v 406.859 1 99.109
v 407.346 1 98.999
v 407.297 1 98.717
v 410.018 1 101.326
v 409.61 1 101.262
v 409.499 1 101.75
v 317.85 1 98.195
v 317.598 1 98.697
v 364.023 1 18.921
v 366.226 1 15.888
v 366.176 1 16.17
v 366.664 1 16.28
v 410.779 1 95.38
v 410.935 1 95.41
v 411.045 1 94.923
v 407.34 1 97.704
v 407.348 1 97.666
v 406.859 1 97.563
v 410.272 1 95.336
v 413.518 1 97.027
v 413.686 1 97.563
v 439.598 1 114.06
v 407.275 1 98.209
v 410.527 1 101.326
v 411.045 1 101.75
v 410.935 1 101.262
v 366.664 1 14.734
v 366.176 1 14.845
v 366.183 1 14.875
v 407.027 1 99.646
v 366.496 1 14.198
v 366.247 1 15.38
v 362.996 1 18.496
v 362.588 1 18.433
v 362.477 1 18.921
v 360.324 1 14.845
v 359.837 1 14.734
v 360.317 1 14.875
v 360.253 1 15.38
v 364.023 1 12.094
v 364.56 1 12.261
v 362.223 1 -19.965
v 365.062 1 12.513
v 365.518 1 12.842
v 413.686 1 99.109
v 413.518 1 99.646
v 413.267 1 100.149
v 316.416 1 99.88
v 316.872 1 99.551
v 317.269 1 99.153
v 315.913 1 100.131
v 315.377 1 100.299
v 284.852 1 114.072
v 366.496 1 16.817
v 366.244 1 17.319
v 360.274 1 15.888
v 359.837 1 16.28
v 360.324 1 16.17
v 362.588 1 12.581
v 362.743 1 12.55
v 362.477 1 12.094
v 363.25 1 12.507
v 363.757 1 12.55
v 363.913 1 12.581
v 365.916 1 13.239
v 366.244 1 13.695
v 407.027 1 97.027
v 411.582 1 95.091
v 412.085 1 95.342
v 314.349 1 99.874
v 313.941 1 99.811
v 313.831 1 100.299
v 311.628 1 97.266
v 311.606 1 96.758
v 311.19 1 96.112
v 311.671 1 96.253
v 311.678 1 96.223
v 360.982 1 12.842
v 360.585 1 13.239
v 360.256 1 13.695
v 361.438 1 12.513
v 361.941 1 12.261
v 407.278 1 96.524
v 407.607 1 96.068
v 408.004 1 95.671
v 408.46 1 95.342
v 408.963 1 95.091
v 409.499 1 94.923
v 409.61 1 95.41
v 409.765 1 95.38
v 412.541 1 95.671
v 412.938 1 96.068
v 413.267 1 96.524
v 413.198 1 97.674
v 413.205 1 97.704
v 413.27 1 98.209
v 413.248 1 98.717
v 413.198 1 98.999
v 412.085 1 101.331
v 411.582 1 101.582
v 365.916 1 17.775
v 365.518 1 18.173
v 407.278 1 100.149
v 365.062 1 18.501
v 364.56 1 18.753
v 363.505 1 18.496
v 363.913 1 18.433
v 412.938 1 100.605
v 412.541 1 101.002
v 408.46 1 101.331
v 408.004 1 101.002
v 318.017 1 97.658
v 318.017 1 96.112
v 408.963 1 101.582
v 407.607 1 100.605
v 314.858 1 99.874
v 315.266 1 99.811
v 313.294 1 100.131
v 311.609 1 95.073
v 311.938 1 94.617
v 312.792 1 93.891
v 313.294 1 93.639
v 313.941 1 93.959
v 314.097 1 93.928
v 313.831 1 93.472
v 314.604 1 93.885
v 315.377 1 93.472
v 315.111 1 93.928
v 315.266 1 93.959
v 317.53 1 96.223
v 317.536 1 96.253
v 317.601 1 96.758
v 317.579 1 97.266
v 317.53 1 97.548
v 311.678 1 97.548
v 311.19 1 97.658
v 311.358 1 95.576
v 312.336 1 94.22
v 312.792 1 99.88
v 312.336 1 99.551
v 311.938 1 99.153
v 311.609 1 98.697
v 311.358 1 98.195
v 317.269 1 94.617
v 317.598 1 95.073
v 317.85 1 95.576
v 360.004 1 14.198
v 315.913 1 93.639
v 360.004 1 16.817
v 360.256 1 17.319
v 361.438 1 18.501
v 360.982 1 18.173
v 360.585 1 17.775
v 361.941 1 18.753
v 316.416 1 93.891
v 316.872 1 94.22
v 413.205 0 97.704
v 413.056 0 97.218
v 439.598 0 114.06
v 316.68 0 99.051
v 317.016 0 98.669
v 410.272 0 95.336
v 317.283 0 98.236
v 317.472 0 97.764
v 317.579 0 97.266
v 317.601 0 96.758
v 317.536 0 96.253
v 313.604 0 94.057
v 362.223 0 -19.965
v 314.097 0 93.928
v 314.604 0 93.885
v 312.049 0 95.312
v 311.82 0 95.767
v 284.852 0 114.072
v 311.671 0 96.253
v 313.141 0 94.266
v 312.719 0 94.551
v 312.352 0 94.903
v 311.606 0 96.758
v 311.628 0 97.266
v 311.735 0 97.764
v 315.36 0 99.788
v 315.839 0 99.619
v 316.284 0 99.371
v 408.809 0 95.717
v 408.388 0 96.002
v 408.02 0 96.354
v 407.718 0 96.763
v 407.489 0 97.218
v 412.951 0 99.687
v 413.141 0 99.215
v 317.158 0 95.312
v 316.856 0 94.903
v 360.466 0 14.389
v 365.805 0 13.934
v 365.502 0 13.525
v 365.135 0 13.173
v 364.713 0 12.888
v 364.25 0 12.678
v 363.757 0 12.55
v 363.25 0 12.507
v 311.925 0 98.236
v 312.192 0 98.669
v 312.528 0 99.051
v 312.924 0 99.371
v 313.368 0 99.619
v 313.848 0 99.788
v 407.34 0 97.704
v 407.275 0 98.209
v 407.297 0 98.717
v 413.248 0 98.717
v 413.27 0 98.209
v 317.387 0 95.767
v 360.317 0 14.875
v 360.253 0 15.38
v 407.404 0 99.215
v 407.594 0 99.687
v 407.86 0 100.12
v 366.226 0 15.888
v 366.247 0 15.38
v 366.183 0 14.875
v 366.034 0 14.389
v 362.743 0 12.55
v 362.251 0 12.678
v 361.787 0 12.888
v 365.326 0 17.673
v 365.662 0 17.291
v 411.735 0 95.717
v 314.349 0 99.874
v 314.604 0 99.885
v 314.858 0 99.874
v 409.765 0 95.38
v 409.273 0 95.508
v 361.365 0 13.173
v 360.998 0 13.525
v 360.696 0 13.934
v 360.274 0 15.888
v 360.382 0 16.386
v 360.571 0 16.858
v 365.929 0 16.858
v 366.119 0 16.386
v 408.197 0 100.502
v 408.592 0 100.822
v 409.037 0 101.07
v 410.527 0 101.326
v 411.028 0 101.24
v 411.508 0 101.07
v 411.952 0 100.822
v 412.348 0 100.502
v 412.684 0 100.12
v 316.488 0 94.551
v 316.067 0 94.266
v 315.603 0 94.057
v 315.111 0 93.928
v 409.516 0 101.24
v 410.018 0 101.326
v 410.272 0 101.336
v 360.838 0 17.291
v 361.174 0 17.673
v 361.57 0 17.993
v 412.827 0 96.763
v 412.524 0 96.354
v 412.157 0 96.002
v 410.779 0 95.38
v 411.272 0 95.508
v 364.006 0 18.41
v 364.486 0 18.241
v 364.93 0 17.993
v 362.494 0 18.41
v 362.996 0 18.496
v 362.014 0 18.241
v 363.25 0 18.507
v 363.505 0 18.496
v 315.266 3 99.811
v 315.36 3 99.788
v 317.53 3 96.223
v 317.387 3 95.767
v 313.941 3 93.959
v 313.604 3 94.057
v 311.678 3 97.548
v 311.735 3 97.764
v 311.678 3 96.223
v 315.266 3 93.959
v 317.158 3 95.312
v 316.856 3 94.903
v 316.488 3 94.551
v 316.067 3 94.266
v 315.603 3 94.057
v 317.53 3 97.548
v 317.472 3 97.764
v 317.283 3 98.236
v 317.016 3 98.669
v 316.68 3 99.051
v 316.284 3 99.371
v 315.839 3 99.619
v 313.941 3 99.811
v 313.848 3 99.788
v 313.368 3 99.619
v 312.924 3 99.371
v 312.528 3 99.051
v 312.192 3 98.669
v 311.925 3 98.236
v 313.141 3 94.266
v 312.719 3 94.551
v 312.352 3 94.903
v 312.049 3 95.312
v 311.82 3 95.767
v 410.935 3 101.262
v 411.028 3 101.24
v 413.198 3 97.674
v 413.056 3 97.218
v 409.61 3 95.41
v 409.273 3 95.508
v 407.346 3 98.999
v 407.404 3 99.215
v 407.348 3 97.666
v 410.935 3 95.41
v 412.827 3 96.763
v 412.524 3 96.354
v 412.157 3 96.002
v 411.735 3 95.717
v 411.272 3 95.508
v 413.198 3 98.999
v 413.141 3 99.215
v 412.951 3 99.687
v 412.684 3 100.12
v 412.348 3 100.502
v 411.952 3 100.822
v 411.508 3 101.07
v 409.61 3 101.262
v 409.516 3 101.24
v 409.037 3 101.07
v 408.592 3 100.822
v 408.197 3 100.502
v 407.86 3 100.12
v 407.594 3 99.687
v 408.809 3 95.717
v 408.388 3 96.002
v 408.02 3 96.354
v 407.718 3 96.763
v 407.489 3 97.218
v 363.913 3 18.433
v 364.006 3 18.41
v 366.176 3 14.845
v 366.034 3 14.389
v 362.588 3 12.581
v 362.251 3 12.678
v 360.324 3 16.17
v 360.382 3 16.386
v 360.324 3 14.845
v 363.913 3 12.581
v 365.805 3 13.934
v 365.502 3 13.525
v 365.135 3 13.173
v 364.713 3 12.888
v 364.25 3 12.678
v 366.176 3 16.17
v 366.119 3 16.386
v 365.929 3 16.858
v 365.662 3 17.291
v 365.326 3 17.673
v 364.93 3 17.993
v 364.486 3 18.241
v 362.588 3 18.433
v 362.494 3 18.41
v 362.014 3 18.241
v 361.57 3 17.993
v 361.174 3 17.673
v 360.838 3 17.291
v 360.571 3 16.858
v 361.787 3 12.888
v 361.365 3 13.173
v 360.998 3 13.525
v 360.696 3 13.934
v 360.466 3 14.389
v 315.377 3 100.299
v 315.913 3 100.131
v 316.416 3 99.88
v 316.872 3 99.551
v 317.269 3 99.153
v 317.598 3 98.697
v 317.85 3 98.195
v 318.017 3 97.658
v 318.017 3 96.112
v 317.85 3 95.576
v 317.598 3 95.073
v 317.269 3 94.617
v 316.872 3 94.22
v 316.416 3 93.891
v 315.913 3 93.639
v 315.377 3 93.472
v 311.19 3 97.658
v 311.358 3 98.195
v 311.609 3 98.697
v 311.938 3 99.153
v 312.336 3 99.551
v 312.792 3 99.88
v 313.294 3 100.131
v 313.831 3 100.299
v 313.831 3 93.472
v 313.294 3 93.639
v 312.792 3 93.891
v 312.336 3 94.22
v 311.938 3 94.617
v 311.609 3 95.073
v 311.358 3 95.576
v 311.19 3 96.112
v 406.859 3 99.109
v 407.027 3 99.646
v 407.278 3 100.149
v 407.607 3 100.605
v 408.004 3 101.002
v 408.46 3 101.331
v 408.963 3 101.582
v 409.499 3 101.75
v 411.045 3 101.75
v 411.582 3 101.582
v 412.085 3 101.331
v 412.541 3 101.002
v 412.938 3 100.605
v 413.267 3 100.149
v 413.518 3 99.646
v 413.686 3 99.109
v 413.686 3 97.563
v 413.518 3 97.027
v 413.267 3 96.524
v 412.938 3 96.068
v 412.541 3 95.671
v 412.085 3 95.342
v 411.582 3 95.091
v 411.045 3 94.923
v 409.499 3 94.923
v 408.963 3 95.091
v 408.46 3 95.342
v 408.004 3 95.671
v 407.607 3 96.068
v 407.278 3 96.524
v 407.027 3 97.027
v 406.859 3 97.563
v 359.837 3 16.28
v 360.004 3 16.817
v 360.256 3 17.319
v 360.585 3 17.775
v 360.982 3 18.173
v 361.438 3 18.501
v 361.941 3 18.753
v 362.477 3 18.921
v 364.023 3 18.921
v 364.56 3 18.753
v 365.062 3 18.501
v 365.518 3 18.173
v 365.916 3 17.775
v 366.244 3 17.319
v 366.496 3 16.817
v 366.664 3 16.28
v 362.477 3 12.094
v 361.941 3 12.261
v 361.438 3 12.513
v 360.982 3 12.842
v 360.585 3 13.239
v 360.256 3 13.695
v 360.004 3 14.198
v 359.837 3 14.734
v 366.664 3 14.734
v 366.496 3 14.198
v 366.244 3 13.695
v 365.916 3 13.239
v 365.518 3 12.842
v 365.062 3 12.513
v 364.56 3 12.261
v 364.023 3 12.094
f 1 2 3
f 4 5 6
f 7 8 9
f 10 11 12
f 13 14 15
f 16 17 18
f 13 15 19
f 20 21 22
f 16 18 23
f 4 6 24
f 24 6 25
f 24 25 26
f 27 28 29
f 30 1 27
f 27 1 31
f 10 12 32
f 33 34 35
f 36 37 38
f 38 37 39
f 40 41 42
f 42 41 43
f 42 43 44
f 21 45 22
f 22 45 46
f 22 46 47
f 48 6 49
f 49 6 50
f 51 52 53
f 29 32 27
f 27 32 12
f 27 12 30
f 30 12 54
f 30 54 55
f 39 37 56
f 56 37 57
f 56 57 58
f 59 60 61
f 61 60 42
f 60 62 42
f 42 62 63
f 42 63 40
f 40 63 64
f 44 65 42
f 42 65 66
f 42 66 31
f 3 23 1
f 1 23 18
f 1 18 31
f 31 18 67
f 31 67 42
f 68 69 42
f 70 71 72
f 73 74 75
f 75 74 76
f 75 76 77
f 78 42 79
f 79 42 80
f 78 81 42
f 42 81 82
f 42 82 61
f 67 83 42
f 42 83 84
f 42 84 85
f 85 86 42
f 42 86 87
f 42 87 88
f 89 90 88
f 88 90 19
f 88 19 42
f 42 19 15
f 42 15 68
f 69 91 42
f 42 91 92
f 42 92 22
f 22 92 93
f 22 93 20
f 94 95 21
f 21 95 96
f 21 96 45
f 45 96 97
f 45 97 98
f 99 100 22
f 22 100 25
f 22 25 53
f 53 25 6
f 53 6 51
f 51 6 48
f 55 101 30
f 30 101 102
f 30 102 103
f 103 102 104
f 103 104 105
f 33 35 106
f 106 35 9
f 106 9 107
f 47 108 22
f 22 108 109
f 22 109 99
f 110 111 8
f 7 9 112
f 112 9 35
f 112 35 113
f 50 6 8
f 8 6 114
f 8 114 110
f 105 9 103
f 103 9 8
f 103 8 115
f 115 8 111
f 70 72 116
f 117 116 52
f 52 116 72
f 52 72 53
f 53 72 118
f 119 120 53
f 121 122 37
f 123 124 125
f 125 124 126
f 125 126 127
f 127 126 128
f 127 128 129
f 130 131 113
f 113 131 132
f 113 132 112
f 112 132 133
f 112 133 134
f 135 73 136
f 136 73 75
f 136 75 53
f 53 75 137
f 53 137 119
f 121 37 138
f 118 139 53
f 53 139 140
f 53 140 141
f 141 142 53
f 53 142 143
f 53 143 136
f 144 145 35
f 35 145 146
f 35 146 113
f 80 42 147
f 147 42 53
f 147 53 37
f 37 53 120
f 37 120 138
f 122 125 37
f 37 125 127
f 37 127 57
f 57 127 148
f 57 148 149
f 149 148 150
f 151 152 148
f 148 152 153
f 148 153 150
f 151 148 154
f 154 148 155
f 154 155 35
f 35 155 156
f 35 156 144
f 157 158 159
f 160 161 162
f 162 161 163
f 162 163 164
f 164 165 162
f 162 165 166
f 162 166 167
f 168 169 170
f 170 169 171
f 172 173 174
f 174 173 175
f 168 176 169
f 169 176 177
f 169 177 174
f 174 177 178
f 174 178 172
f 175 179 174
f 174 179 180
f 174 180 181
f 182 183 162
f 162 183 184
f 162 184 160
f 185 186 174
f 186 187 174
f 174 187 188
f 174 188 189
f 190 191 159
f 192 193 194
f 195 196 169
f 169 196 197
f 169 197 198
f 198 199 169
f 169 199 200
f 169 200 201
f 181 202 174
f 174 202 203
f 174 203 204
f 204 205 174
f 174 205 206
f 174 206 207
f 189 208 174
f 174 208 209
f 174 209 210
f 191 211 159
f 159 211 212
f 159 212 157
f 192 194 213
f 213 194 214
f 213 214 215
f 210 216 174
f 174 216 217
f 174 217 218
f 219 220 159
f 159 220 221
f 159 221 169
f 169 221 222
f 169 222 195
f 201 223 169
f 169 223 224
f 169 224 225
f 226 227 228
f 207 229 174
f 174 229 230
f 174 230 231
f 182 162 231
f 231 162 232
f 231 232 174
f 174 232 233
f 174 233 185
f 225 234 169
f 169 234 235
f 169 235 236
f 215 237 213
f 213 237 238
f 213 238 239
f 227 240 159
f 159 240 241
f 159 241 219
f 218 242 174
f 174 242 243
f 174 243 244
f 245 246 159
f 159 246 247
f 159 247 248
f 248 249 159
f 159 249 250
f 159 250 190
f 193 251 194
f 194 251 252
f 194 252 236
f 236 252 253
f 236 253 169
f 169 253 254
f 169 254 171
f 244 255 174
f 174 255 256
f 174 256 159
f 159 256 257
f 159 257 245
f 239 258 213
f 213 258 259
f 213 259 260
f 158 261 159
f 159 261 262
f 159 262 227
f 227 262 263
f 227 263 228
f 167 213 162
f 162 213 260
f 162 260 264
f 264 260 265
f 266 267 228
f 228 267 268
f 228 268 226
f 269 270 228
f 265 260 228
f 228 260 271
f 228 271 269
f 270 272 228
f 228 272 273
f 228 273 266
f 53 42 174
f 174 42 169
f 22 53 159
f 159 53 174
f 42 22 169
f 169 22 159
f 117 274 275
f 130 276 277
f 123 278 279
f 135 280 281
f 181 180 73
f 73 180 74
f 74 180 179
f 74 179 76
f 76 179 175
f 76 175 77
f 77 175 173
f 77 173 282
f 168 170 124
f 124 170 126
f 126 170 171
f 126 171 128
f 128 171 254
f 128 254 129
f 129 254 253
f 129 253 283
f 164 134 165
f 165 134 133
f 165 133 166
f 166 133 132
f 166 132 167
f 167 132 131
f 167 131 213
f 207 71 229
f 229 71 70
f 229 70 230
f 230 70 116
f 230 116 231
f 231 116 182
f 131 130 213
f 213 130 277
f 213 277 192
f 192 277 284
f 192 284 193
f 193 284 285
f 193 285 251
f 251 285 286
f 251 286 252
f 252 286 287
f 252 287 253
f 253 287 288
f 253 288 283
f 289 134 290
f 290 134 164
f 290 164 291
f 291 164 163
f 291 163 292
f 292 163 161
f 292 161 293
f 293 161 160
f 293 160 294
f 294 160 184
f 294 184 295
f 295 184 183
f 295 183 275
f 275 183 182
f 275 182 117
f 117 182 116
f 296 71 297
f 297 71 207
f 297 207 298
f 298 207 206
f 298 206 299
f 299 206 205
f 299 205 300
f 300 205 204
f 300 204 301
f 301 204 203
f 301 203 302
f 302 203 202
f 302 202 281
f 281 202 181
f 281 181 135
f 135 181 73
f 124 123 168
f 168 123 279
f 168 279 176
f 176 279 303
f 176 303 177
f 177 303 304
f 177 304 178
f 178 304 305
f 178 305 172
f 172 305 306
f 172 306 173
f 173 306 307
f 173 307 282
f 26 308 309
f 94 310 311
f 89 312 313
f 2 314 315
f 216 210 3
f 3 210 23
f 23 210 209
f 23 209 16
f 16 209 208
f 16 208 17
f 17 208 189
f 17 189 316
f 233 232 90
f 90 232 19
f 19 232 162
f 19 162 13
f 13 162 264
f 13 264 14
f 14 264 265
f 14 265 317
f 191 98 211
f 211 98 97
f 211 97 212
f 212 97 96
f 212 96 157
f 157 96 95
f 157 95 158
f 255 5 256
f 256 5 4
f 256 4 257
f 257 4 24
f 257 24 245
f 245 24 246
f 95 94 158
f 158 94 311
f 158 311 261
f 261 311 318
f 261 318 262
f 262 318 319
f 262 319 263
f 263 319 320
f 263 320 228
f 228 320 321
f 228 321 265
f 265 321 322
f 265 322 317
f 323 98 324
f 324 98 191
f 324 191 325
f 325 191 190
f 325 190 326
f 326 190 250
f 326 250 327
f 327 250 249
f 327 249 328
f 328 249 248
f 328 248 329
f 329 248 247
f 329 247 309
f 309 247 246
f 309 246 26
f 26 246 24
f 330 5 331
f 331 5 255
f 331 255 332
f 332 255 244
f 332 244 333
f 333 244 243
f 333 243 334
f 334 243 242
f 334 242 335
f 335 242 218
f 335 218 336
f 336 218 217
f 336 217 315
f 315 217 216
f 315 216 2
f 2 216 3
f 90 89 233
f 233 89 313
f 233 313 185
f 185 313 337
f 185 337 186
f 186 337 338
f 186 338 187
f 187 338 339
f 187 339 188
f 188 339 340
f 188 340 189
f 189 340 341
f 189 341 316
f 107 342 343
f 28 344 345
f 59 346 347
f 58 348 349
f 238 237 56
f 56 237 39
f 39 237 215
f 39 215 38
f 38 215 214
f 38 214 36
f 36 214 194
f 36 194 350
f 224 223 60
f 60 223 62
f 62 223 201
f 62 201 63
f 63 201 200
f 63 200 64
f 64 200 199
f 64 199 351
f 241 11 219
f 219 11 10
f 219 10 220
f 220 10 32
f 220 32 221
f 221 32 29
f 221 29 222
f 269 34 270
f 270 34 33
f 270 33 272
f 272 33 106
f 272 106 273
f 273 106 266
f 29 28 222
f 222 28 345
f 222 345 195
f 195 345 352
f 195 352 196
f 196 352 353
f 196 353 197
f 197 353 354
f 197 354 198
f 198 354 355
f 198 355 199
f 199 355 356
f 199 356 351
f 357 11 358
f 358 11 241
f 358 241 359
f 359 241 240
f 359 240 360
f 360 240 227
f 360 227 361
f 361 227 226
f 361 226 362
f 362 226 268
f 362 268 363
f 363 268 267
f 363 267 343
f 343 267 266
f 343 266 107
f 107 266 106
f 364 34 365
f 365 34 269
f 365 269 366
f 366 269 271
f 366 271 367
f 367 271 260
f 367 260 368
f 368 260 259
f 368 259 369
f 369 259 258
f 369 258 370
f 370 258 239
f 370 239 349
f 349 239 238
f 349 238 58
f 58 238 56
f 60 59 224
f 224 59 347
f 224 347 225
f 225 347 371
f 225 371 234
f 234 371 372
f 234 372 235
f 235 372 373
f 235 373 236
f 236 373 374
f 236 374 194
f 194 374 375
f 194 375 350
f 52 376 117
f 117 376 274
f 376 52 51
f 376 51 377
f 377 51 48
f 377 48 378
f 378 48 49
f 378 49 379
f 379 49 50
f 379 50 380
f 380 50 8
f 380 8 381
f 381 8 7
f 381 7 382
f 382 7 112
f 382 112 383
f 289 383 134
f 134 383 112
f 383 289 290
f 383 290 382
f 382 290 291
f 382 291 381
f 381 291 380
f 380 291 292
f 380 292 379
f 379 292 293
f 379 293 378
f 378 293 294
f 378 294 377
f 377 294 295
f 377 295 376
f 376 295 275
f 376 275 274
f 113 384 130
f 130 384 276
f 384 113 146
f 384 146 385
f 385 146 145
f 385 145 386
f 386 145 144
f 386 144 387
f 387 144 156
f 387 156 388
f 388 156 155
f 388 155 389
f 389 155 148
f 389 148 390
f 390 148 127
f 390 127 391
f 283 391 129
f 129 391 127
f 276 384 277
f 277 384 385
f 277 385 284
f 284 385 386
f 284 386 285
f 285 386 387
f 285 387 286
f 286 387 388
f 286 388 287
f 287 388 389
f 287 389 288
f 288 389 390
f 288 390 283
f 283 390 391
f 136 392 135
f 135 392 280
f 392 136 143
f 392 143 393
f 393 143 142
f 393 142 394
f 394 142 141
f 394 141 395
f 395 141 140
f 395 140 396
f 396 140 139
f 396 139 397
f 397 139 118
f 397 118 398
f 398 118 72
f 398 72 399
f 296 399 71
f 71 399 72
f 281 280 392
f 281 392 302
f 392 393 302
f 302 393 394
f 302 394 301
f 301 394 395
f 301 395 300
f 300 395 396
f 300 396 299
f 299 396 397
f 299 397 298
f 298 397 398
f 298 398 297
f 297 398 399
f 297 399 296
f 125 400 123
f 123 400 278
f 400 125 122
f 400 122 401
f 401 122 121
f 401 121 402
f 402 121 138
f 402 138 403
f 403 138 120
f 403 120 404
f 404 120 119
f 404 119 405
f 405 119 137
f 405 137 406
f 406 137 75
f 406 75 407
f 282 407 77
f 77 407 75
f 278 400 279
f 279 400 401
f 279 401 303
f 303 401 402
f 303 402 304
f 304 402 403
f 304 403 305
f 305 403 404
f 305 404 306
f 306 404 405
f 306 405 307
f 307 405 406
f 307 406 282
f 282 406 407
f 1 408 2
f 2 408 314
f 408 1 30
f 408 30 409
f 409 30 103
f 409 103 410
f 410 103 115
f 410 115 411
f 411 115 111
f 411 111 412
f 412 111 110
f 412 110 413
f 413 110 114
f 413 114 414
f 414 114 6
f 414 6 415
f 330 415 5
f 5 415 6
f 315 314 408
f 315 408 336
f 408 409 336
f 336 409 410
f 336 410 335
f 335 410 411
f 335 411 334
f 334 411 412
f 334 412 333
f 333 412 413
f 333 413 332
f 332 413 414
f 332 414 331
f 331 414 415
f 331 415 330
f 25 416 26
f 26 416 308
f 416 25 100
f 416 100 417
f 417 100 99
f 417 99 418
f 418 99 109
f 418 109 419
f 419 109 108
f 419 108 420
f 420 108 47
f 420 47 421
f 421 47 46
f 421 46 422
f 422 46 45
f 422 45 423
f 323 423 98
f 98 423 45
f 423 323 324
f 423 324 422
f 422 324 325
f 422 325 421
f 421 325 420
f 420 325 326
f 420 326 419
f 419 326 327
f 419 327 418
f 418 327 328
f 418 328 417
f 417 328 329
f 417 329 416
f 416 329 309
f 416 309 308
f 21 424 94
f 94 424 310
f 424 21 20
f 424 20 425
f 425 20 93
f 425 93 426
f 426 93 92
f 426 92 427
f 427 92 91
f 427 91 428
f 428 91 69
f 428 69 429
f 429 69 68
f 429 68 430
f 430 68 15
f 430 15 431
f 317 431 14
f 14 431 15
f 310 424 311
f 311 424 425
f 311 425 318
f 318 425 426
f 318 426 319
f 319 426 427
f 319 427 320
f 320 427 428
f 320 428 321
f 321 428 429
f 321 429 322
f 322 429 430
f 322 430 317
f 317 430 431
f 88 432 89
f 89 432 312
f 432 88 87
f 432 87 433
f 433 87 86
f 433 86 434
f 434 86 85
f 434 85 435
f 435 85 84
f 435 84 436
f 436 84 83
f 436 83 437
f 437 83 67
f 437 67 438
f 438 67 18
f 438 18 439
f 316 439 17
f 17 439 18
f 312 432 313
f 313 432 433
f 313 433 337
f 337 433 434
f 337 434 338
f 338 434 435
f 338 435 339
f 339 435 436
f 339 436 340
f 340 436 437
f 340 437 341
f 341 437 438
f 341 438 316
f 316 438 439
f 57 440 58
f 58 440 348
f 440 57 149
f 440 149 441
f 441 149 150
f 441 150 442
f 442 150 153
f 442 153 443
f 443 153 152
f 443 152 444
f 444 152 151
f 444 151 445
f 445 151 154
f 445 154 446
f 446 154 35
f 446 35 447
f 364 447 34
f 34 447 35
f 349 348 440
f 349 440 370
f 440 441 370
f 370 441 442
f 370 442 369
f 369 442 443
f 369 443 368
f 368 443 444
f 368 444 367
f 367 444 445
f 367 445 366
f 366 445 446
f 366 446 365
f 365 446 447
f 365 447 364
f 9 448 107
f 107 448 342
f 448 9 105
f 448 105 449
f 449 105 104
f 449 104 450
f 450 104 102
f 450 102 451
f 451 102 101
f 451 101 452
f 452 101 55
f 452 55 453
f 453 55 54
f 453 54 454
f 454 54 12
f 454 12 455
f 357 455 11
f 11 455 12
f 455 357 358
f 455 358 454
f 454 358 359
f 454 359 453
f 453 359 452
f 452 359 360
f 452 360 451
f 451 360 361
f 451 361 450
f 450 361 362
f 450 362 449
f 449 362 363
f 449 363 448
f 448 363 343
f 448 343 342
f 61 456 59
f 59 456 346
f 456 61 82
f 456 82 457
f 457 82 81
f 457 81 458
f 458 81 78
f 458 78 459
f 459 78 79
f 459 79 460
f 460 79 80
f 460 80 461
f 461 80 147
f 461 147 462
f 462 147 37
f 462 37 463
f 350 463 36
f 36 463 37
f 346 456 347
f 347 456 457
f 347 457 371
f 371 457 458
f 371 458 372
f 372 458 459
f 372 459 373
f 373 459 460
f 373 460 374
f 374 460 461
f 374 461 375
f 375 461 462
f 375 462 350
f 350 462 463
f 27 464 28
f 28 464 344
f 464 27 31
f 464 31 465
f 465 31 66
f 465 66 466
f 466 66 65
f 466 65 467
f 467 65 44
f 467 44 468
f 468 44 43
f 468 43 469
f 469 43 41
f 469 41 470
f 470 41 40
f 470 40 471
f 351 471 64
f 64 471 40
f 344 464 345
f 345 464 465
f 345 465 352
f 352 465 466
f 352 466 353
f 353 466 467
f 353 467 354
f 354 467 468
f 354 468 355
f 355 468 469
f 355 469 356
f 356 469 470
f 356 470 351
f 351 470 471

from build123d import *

# Parameters (mm, degrees)
BOSS_EXTRUDE3_DEPTH = 1
BOSS_EXTRUDE4_DEPTH = 3


with BuildPart() as part:
    # Sketch1 → Boss-Extrude3 (new body)
    with BuildSketch(Plane(origin=(0, 0, 0), x_dir=(1, 0, 0), z_dir=(0, 1, 0))):
        Polygon((362.222534427, 19.965180646), (284.852100337, -114.072137645), (439.598290008, -114.060221421), align=None)
        with BuildLine():
            Line((363.912669034, -12.581193275), (364.023092144, -12.093538954))
            ThreePointArc((364.023092144, -12.093538954), (365.725004108, -13.032245467), (366.663710621, -14.734157431))
            Line((366.663710621, -14.734157431), (366.1760563, -14.844580541))
            ThreePointArc((366.1760563, -14.844580541), (366.250130374, -15.507119201), (366.1760563, -16.169657861))
            Line((366.1760563, -16.169657861), (366.663710621, -16.280080971))
            ThreePointArc((366.663710621, -16.280080971), (365.725004108, -17.981992935), (364.023092144, -18.920699448))
            Line((364.023092144, -18.920699448), (363.912669034, -18.433045127))
            ThreePointArc((363.912669034, -18.433045127), (363.250130374, -18.507119201), (362.587591714, -18.433045127))
            Line((362.587591714, -18.433045127), (362.477168604, -18.920699448))
            ThreePointArc((362.477168604, -18.920699448), (360.77525664, -17.981992935), (359.836550127, -16.280080971))
            Line((359.836550127, -16.280080971), (360.324204448, -16.169657861))
            ThreePointArc((360.324204448, -16.169657861), (360.250130374, -15.507119201), (360.324204448, -14.844580541))
            Line((360.324204448, -14.844580541), (359.836550127, -14.734157431))
            ThreePointArc((359.836550127, -14.734157431), (360.77525664, -13.032245467), (362.477168604, -12.093538954))
            Line((362.477168604, -12.093538954), (362.587591714, -12.581193275))
            ThreePointArc((362.587591714, -12.581193275), (363.250130374, -12.507119201), (363.912669034, -12.581193275))
        make_face(mode=Mode.SUBTRACT)
        with BuildLine():
            ThreePointArc((313.830794955, -100.2988546), (312.128882991, -99.360148087), (311.190176478, -97.658236123))
            Line((311.190176478, -97.658236123), (311.677830799, -97.547813013))
            ThreePointArc((311.677830799, -97.547813013), (311.603756725, -96.885274353), (311.677830799, -96.222735693))
            Line((311.677830799, -96.222735693), (311.190176478, -96.112312583))
            ThreePointArc((311.190176478, -96.112312583), (312.128882991, -94.410400619), (313.830794955, -93.471694106))
            Line((313.830794955, -93.471694106), (313.941218065, -93.959348427))
            ThreePointArc((313.941218065, -93.959348427), (314.603756725, -93.885274353), (315.266295385, -93.959348427))
            Line((315.266295385, -93.959348427), (315.376718495, -93.471694106))
            ThreePointArc((315.376718495, -93.471694106), (317.078630459, -94.410400619), (318.017336972, -96.112312583))
            Line((318.017336972, -96.112312583), (317.529682651, -96.222735693))
            ThreePointArc((317.529682651, -96.222735693), (317.603756725, -96.885274353), (317.529682651, -97.547813013))
            Line((317.529682651, -97.547813013), (318.017336972, -97.658236123))
            ThreePointArc((318.017336972, -97.658236123), (317.078630459, -99.360148087), (315.376718495, -100.2988546))
            Line((315.376718495, -100.2988546), (315.266295385, -99.811200279))
            ThreePointArc((315.266295385, -99.811200279), (314.603756725, -99.885274353), (313.941218065, -99.811200279))
            Line((313.941218065, -99.811200279), (313.830794955, -100.2988546))
        make_face(mode=Mode.SUBTRACT)
        with BuildLine():
            ThreePointArc((406.858805843, -97.563455036), (407.797512356, -95.861543072), (409.49942432, -94.922836559))
            Line((409.49942432, -94.922836559), (409.60984743, -95.41049088))
            ThreePointArc((409.60984743, -95.41049088), (410.27238609, -95.336416806), (410.93492475, -95.41049088))
            Line((410.93492475, -95.41049088), (411.04534786, -94.922836559))
            ThreePointArc((411.04534786, -94.922836559), (412.747259824, -95.861543072), (413.685966337, -97.563455036))
            Line((413.685966337, -97.563455036), (413.198312016, -97.673878146))
            ThreePointArc((413.198312016, -97.673878146), (413.27238609, -98.336416806), (413.198312016, -98.998955466))
            Line((413.198312016, -98.998955466), (413.685966337, -99.109378576))
            ThreePointArc((413.685966337, -99.109378576), (412.747259824, -100.81129054), (411.04534786, -101.749997053))
            Line((411.04534786, -101.749997053), (410.93492475, -101.262342732))
            ThreePointArc((410.93492475, -101.262342732), (410.27238609, -101.336416806), (409.60984743, -101.262342732))
            Line((409.60984743, -101.262342732), (409.49942432, -101.749997053))
            ThreePointArc((409.49942432, -101.749997053), (407.797512356, -100.81129054), (406.858805843, -99.109378576))
            Line((406.858805843, -99.109378576), (407.346460164, -98.998955466))
            ThreePointArc((407.346460164, -98.998955466), (407.272389017, -98.332225876), (407.348322685, -97.665705839))
            Line((407.348322685, -97.665705839), (406.858805843, -97.563455036))
        make_face(mode=Mode.SUBTRACT)
    extrude(amount=BOSS_EXTRUDE3_DEPTH)

    # Sketch1<15> → Boss-Extrude4 (add)
    with BuildSketch(Plane(origin=(0, 0, 0), x_dir=(1, 0, 0), z_dir=(0, 1, 0))):
        with BuildLine():
            Line((315.266295385, -99.811200279), (315.376718495, -100.2988546))
            ThreePointArc((315.376718495, -100.2988546), (317.078630459, -99.360148087), (318.017336972, -97.658236123))
            Line((318.017336972, -97.658236123), (317.529682651, -97.547813013))
            ThreePointArc((317.529682651, -97.547813013), (316.725077068, -99.006594697), (315.266295385, -99.811200279))
        make_face()
        with BuildLine():
            ThreePointArc((318.017336972, -96.112312583), (317.078630459, -94.410400619), (315.376718495, -93.471694106))
            Line((315.376718495, -93.471694106), (315.266295385, -93.959348427))
            ThreePointArc((315.266295385, -93.959348427), (316.725077068, -94.76395401), (317.529682651, -96.222735693))
            Line((317.529682651, -96.222735693), (318.017336972, -96.112312583))
        make_face()
        with BuildLine():
            Line((311.677830799, -97.547813013), (311.190176478, -97.658236123))
            ThreePointArc((311.190176478, -97.658236123), (312.128882991, -99.360148087), (313.830794955, -100.2988546))
            Line((313.830794955, -100.2988546), (313.941218065, -99.811200279))
            ThreePointArc((313.941218065, -99.811200279), (312.482436381, -99.006594697), (311.677830799, -97.547813013))
        make_face()
        with BuildLine():
            ThreePointArc((313.830794955, -93.471694106), (312.128882991, -94.410400619), (311.190176478, -96.112312583))
            Line((311.190176478, -96.112312583), (311.677830799, -96.222735693))
            ThreePointArc((311.677830799, -96.222735693), (312.482436381, -94.76395401), (313.941218065, -93.959348427))
            Line((313.941218065, -93.959348427), (313.830794955, -93.471694106))
        make_face()
        with BuildLine():
            Line((407.346460164, -98.998955466), (406.858805843, -99.109378576))
            ThreePointArc((406.858805843, -99.109378576), (407.797512356, -100.81129054), (409.49942432, -101.749997053))
            Line((409.49942432, -101.749997053), (409.60984743, -101.262342732))
            ThreePointArc((409.60984743, -101.262342732), (408.151065747, -100.457737149), (407.346460164, -98.998955466))
        make_face()
        with BuildLine():
            ThreePointArc((411.04534786, -101.749997053), (412.747259824, -100.81129054), (413.685966337, -99.109378576))
            Line((413.685966337, -99.109378576), (413.198312016, -98.998955466))
            ThreePointArc((413.198312016, -98.998955466), (412.393706434, -100.457737149), (410.93492475, -101.262342732))
            Line((410.93492475, -101.262342732), (411.04534786, -101.749997053))
        make_face()
        with BuildLine():
            ThreePointArc((413.685966337, -97.563455036), (412.747259824, -95.861543072), (411.04534786, -94.922836559))
            Line((411.04534786, -94.922836559), (410.93492475, -95.41049088))
            ThreePointArc((410.93492475, -95.41049088), (412.393706434, -96.215096462), (413.198312016, -97.673878146))
            Line((413.198312016, -97.673878146), (413.685966337, -97.563455036))
        make_face()
        with BuildLine():
            Line((409.60984743, -95.41049088), (409.49942432, -94.922836559))
            ThreePointArc((409.49942432, -94.922836559), (407.797512356, -95.861543072), (406.858805843, -97.563455036))
            Line((406.858805843, -97.563455036), (407.348322685, -97.665705839))
            ThreePointArc((407.348322685, -97.665705839), (408.154031252, -96.212135097), (409.60984743, -95.41049088))
        make_face()
        with BuildLine():
            Line((360.324204448, -16.169657861), (359.836550127, -16.280080971))
            ThreePointArc((359.836550127, -16.280080971), (360.77525664, -17.981992935), (362.477168604, -18.920699448))
            Line((362.477168604, -18.920699448), (362.587591714, -18.433045127))
            ThreePointArc((362.587591714, -18.433045127), (361.128810031, -17.628439544), (360.324204448, -16.169657861))
        make_face()
        with BuildLine():
            ThreePointArc((364.023092144, -18.920699448), (365.725004108, -17.981992935), (366.663710621, -16.280080971))
            Line((366.663710621, -16.280080971), (366.1760563, -16.169657861))
            ThreePointArc((366.1760563, -16.169657861), (365.371450718, -17.628439544), (363.912669034, -18.433045127))
            Line((363.912669034, -18.433045127), (364.023092144, -18.920699448))
        make_face()
        with BuildLine():
            Line((362.587591714, -12.581193275), (362.477168604, -12.093538954))
            ThreePointArc((362.477168604, -12.093538954), (360.77525664, -13.032245467), (359.836550127, -14.734157431))
            Line((359.836550127, -14.734157431), (360.324204448, -14.844580541))
            ThreePointArc((360.324204448, -14.844580541), (361.128810031, -13.385798857), (362.587591714, -12.581193275))
        make_face()
        with BuildLine():
            ThreePointArc((366.663710621, -14.734157431), (365.725004108, -13.032245467), (364.023092144, -12.093538954))
            Line((364.023092144, -12.093538954), (363.912669034, -12.581193275))
            ThreePointArc((363.912669034, -12.581193275), (365.371450718, -13.385798857), (366.1760563, -14.844580541))
            Line((366.1760563, -14.844580541), (366.663710621, -14.734157431))
        make_face()
    extrude(amount=BOSS_EXTRUDE4_DEPTH)


solid = part.part
